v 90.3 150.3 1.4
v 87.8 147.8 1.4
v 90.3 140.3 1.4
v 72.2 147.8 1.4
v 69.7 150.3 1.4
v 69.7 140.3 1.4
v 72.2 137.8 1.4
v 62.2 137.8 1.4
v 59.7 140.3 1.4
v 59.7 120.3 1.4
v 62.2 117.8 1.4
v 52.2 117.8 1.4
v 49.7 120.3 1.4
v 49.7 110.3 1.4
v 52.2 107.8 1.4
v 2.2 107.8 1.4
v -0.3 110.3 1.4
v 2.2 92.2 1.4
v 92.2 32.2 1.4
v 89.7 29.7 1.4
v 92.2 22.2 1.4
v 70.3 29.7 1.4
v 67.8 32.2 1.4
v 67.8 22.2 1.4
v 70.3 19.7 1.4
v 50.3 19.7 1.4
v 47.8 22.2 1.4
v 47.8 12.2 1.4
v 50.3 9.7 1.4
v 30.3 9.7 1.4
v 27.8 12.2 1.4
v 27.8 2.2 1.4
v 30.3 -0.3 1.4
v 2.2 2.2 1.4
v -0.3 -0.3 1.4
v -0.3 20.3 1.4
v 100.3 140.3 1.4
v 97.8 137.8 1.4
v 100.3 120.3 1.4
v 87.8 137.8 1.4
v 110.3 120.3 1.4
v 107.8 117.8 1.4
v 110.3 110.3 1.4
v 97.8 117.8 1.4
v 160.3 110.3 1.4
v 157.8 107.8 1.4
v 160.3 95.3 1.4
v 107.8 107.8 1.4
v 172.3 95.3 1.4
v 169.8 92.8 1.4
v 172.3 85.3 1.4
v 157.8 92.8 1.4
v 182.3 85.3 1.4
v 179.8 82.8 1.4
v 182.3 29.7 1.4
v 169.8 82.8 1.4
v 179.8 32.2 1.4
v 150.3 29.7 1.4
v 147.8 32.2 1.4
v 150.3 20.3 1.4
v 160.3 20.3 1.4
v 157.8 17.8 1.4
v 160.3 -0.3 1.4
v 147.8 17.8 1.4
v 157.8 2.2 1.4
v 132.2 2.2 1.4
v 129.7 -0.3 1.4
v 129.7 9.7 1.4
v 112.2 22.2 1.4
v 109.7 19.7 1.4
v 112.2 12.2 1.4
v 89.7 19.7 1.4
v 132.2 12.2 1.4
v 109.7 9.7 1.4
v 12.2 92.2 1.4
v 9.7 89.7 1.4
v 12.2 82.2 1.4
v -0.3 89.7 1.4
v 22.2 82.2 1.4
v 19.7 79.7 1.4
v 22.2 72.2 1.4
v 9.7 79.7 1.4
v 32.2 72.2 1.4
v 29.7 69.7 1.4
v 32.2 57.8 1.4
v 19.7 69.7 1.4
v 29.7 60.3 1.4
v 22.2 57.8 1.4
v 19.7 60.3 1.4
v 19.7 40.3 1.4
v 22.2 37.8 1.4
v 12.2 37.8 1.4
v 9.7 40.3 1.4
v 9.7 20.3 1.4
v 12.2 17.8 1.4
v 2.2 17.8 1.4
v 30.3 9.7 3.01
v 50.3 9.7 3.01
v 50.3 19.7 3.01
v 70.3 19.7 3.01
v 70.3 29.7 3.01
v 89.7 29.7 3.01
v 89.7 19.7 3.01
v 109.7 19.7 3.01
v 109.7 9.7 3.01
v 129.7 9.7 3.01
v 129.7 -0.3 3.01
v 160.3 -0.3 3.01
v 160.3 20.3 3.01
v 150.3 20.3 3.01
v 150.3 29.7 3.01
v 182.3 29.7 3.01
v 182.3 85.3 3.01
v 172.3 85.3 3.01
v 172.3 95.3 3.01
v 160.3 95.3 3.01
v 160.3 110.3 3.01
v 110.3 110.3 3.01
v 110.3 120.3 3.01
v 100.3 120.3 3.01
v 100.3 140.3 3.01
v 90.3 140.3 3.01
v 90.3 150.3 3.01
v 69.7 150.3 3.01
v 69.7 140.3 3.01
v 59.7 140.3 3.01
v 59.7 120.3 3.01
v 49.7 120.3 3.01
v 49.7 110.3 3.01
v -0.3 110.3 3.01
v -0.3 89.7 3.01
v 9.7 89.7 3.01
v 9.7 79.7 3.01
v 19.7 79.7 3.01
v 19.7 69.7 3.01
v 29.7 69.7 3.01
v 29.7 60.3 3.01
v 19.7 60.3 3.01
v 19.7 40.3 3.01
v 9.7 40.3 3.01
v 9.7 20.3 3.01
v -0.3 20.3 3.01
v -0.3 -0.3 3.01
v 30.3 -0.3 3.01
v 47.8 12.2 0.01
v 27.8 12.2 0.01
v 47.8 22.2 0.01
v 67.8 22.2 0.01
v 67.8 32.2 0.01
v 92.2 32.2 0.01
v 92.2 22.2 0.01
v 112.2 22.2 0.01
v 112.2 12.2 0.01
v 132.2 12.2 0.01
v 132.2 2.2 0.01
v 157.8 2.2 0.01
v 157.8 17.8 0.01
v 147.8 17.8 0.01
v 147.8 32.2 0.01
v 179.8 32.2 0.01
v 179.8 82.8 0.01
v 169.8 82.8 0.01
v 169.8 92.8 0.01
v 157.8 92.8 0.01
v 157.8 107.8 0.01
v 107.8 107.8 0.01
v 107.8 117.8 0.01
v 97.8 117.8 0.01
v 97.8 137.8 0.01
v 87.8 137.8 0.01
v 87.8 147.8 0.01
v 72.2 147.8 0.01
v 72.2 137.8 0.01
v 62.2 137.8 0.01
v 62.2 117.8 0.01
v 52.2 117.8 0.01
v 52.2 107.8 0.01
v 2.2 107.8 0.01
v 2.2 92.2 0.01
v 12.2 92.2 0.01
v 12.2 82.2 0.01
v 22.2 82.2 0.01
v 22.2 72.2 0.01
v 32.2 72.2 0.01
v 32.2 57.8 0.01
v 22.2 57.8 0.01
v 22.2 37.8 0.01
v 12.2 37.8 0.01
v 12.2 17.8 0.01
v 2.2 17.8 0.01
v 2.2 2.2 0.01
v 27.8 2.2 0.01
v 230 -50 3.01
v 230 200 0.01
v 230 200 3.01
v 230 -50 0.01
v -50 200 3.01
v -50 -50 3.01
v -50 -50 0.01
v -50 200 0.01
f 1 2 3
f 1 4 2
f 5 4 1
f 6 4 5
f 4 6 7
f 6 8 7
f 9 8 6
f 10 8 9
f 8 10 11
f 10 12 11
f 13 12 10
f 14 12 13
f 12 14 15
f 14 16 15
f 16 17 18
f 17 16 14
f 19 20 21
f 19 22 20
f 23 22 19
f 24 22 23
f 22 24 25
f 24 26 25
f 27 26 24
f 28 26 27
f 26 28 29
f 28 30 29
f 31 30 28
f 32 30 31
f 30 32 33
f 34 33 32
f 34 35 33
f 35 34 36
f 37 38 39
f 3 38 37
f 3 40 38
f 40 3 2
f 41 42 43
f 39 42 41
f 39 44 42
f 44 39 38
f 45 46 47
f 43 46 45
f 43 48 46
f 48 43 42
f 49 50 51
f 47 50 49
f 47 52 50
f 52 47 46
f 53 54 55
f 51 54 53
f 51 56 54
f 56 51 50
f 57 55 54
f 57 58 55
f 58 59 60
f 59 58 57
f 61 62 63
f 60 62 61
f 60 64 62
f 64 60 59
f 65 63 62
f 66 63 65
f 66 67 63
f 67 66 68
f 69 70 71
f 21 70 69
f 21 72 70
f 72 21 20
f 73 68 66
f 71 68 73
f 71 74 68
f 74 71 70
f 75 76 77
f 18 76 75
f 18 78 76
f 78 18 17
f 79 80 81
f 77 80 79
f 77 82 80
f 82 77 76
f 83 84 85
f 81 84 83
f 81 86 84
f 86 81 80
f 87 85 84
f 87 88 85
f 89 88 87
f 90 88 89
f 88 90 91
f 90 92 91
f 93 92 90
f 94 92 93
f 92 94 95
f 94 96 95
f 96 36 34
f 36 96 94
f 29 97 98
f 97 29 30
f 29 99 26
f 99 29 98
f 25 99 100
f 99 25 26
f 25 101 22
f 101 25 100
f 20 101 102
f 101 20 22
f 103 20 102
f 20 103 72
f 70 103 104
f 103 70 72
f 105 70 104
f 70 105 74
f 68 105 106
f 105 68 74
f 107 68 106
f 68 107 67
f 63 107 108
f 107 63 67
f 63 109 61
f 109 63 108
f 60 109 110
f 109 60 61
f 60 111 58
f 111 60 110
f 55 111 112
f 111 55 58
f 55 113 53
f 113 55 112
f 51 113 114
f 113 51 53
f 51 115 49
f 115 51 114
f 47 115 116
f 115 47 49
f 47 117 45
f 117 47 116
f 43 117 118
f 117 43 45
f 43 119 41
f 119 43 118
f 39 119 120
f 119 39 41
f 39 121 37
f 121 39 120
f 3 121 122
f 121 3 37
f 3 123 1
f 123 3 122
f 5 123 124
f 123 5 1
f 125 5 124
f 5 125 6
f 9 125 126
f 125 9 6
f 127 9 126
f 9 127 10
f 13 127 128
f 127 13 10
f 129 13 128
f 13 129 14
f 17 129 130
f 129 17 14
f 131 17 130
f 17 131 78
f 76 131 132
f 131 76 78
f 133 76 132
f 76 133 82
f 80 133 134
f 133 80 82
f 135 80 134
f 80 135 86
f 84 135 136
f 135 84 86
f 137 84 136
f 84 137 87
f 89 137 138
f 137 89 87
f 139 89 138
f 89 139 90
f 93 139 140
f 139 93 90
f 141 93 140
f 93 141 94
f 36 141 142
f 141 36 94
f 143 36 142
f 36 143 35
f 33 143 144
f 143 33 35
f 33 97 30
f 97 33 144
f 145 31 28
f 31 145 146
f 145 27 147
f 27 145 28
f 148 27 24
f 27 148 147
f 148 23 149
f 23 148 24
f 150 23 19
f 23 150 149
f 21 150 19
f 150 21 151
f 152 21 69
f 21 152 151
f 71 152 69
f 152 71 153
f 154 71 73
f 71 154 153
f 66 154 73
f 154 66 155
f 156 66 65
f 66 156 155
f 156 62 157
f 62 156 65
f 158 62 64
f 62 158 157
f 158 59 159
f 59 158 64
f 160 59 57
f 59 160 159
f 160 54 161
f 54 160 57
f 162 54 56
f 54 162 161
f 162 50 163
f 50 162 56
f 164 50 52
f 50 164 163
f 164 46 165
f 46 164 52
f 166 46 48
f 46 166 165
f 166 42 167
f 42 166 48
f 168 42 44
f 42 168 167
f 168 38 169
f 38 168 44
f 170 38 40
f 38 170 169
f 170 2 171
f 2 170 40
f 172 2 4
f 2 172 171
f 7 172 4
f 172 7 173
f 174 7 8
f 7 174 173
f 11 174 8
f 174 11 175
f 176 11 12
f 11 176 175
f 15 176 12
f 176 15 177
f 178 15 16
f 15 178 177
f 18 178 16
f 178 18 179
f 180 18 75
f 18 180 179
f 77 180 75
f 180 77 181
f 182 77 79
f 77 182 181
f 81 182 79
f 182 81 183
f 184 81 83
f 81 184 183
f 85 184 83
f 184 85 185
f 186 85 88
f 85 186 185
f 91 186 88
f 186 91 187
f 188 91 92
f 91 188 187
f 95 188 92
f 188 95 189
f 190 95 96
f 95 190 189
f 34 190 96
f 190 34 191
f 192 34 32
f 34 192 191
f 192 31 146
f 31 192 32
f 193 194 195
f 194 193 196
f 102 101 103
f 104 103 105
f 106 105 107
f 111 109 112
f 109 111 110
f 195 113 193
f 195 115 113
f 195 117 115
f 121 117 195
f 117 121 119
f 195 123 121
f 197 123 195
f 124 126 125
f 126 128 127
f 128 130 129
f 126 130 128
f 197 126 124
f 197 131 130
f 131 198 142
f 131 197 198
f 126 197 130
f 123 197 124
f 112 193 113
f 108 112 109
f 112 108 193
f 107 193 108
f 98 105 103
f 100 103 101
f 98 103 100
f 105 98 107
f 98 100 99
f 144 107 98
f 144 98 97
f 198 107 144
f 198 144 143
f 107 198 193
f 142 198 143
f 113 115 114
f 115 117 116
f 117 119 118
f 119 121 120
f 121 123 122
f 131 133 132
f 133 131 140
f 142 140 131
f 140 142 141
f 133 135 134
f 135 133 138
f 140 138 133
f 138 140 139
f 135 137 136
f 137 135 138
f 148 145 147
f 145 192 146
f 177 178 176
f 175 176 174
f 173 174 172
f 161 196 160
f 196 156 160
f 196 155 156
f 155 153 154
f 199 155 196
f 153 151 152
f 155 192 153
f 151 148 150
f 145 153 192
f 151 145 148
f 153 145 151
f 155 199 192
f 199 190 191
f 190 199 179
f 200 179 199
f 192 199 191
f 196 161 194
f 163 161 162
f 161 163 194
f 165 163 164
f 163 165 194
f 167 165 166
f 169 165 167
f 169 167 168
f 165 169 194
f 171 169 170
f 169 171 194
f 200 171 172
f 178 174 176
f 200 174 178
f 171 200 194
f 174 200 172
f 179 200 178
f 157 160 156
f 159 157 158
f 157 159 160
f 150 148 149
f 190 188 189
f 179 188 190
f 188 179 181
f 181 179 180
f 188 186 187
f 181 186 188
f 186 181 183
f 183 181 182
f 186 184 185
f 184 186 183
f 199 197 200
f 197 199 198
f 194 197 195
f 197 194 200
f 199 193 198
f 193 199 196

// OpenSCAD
// file: pcb.scad
$fn = 100;
pcb_w = 151;
pcb_l = 30.5;
pcb_h = 2.2;

module pcb(draw_holes=true) {
    //translate([0, 0, -pcb_h/2])
    //difference() {
        linear_extrude(height=pcb_h) {
            // Add 0.3mm to all ends to better align with
            // 3d printer tolerance
            offset(delta=+0.3) {
                polygon(points=[
                // left side
                [0,0],[0,20],[10,20],[10,40],
                [20,40],[20,60],[30,60],[30,70],
                [20,70],[20,80],[10,80],[10,90],[0,90],
                [0,110],[50,110],[50,120],[60,120],
                [60,140],[70,140],[70,150],[90,150],
                // Top right
                [90,140],[100,140],[100,120],[110,120],
                [110,110],[160,110],
                // Expansion module
                [160,95],[172,95],[172,85],[182,85],[182,30],
                // bottom right
                [150,30],[150,20],[160,20],[160,0],
                // Bottom
                [130,0],[130,10],[110,10],[110,20],
                [90,20],[90,30],[70,30],[70,20],[50,20],
                [50,10],[30,10],[30,0]]);
            }
        }
    //}
}

//rotate([90, 0, 90]) {
//    union() {
//        pcb(true);
//    }
//}
// main file
include <pcb.scad>;


board_w = 280;
board_h = 3.0;
board_l = 250;
board_x = -50;
board_y = -50;
board_z = 0.01;

stencil_w = 240;
stencil_h = 3;
stencil_l = 210;
stencil_x = -30;
stencil_y = -30;
stencil_z = 3;

module negative_pcb(x, y, z) {
    translate([x, y, z+1.4])
        pcb(false);
    translate([x, y, z])
        linear_extrude(height=board_h+4)
            offset(delta=-2.5)
                projection(cut=true)
                    pcb(false);
}

module board() {
    difference() {
        translate([board_x, board_y, board_z])
            cube([board_w, board_l, board_h]);
        //translate([stencil_x, stencil_y, stencil_z])
            //cube([stencil_w, stencil_l, stencil_h]);
        negative_pcb(0, 0, 0);
    }
}

board();
